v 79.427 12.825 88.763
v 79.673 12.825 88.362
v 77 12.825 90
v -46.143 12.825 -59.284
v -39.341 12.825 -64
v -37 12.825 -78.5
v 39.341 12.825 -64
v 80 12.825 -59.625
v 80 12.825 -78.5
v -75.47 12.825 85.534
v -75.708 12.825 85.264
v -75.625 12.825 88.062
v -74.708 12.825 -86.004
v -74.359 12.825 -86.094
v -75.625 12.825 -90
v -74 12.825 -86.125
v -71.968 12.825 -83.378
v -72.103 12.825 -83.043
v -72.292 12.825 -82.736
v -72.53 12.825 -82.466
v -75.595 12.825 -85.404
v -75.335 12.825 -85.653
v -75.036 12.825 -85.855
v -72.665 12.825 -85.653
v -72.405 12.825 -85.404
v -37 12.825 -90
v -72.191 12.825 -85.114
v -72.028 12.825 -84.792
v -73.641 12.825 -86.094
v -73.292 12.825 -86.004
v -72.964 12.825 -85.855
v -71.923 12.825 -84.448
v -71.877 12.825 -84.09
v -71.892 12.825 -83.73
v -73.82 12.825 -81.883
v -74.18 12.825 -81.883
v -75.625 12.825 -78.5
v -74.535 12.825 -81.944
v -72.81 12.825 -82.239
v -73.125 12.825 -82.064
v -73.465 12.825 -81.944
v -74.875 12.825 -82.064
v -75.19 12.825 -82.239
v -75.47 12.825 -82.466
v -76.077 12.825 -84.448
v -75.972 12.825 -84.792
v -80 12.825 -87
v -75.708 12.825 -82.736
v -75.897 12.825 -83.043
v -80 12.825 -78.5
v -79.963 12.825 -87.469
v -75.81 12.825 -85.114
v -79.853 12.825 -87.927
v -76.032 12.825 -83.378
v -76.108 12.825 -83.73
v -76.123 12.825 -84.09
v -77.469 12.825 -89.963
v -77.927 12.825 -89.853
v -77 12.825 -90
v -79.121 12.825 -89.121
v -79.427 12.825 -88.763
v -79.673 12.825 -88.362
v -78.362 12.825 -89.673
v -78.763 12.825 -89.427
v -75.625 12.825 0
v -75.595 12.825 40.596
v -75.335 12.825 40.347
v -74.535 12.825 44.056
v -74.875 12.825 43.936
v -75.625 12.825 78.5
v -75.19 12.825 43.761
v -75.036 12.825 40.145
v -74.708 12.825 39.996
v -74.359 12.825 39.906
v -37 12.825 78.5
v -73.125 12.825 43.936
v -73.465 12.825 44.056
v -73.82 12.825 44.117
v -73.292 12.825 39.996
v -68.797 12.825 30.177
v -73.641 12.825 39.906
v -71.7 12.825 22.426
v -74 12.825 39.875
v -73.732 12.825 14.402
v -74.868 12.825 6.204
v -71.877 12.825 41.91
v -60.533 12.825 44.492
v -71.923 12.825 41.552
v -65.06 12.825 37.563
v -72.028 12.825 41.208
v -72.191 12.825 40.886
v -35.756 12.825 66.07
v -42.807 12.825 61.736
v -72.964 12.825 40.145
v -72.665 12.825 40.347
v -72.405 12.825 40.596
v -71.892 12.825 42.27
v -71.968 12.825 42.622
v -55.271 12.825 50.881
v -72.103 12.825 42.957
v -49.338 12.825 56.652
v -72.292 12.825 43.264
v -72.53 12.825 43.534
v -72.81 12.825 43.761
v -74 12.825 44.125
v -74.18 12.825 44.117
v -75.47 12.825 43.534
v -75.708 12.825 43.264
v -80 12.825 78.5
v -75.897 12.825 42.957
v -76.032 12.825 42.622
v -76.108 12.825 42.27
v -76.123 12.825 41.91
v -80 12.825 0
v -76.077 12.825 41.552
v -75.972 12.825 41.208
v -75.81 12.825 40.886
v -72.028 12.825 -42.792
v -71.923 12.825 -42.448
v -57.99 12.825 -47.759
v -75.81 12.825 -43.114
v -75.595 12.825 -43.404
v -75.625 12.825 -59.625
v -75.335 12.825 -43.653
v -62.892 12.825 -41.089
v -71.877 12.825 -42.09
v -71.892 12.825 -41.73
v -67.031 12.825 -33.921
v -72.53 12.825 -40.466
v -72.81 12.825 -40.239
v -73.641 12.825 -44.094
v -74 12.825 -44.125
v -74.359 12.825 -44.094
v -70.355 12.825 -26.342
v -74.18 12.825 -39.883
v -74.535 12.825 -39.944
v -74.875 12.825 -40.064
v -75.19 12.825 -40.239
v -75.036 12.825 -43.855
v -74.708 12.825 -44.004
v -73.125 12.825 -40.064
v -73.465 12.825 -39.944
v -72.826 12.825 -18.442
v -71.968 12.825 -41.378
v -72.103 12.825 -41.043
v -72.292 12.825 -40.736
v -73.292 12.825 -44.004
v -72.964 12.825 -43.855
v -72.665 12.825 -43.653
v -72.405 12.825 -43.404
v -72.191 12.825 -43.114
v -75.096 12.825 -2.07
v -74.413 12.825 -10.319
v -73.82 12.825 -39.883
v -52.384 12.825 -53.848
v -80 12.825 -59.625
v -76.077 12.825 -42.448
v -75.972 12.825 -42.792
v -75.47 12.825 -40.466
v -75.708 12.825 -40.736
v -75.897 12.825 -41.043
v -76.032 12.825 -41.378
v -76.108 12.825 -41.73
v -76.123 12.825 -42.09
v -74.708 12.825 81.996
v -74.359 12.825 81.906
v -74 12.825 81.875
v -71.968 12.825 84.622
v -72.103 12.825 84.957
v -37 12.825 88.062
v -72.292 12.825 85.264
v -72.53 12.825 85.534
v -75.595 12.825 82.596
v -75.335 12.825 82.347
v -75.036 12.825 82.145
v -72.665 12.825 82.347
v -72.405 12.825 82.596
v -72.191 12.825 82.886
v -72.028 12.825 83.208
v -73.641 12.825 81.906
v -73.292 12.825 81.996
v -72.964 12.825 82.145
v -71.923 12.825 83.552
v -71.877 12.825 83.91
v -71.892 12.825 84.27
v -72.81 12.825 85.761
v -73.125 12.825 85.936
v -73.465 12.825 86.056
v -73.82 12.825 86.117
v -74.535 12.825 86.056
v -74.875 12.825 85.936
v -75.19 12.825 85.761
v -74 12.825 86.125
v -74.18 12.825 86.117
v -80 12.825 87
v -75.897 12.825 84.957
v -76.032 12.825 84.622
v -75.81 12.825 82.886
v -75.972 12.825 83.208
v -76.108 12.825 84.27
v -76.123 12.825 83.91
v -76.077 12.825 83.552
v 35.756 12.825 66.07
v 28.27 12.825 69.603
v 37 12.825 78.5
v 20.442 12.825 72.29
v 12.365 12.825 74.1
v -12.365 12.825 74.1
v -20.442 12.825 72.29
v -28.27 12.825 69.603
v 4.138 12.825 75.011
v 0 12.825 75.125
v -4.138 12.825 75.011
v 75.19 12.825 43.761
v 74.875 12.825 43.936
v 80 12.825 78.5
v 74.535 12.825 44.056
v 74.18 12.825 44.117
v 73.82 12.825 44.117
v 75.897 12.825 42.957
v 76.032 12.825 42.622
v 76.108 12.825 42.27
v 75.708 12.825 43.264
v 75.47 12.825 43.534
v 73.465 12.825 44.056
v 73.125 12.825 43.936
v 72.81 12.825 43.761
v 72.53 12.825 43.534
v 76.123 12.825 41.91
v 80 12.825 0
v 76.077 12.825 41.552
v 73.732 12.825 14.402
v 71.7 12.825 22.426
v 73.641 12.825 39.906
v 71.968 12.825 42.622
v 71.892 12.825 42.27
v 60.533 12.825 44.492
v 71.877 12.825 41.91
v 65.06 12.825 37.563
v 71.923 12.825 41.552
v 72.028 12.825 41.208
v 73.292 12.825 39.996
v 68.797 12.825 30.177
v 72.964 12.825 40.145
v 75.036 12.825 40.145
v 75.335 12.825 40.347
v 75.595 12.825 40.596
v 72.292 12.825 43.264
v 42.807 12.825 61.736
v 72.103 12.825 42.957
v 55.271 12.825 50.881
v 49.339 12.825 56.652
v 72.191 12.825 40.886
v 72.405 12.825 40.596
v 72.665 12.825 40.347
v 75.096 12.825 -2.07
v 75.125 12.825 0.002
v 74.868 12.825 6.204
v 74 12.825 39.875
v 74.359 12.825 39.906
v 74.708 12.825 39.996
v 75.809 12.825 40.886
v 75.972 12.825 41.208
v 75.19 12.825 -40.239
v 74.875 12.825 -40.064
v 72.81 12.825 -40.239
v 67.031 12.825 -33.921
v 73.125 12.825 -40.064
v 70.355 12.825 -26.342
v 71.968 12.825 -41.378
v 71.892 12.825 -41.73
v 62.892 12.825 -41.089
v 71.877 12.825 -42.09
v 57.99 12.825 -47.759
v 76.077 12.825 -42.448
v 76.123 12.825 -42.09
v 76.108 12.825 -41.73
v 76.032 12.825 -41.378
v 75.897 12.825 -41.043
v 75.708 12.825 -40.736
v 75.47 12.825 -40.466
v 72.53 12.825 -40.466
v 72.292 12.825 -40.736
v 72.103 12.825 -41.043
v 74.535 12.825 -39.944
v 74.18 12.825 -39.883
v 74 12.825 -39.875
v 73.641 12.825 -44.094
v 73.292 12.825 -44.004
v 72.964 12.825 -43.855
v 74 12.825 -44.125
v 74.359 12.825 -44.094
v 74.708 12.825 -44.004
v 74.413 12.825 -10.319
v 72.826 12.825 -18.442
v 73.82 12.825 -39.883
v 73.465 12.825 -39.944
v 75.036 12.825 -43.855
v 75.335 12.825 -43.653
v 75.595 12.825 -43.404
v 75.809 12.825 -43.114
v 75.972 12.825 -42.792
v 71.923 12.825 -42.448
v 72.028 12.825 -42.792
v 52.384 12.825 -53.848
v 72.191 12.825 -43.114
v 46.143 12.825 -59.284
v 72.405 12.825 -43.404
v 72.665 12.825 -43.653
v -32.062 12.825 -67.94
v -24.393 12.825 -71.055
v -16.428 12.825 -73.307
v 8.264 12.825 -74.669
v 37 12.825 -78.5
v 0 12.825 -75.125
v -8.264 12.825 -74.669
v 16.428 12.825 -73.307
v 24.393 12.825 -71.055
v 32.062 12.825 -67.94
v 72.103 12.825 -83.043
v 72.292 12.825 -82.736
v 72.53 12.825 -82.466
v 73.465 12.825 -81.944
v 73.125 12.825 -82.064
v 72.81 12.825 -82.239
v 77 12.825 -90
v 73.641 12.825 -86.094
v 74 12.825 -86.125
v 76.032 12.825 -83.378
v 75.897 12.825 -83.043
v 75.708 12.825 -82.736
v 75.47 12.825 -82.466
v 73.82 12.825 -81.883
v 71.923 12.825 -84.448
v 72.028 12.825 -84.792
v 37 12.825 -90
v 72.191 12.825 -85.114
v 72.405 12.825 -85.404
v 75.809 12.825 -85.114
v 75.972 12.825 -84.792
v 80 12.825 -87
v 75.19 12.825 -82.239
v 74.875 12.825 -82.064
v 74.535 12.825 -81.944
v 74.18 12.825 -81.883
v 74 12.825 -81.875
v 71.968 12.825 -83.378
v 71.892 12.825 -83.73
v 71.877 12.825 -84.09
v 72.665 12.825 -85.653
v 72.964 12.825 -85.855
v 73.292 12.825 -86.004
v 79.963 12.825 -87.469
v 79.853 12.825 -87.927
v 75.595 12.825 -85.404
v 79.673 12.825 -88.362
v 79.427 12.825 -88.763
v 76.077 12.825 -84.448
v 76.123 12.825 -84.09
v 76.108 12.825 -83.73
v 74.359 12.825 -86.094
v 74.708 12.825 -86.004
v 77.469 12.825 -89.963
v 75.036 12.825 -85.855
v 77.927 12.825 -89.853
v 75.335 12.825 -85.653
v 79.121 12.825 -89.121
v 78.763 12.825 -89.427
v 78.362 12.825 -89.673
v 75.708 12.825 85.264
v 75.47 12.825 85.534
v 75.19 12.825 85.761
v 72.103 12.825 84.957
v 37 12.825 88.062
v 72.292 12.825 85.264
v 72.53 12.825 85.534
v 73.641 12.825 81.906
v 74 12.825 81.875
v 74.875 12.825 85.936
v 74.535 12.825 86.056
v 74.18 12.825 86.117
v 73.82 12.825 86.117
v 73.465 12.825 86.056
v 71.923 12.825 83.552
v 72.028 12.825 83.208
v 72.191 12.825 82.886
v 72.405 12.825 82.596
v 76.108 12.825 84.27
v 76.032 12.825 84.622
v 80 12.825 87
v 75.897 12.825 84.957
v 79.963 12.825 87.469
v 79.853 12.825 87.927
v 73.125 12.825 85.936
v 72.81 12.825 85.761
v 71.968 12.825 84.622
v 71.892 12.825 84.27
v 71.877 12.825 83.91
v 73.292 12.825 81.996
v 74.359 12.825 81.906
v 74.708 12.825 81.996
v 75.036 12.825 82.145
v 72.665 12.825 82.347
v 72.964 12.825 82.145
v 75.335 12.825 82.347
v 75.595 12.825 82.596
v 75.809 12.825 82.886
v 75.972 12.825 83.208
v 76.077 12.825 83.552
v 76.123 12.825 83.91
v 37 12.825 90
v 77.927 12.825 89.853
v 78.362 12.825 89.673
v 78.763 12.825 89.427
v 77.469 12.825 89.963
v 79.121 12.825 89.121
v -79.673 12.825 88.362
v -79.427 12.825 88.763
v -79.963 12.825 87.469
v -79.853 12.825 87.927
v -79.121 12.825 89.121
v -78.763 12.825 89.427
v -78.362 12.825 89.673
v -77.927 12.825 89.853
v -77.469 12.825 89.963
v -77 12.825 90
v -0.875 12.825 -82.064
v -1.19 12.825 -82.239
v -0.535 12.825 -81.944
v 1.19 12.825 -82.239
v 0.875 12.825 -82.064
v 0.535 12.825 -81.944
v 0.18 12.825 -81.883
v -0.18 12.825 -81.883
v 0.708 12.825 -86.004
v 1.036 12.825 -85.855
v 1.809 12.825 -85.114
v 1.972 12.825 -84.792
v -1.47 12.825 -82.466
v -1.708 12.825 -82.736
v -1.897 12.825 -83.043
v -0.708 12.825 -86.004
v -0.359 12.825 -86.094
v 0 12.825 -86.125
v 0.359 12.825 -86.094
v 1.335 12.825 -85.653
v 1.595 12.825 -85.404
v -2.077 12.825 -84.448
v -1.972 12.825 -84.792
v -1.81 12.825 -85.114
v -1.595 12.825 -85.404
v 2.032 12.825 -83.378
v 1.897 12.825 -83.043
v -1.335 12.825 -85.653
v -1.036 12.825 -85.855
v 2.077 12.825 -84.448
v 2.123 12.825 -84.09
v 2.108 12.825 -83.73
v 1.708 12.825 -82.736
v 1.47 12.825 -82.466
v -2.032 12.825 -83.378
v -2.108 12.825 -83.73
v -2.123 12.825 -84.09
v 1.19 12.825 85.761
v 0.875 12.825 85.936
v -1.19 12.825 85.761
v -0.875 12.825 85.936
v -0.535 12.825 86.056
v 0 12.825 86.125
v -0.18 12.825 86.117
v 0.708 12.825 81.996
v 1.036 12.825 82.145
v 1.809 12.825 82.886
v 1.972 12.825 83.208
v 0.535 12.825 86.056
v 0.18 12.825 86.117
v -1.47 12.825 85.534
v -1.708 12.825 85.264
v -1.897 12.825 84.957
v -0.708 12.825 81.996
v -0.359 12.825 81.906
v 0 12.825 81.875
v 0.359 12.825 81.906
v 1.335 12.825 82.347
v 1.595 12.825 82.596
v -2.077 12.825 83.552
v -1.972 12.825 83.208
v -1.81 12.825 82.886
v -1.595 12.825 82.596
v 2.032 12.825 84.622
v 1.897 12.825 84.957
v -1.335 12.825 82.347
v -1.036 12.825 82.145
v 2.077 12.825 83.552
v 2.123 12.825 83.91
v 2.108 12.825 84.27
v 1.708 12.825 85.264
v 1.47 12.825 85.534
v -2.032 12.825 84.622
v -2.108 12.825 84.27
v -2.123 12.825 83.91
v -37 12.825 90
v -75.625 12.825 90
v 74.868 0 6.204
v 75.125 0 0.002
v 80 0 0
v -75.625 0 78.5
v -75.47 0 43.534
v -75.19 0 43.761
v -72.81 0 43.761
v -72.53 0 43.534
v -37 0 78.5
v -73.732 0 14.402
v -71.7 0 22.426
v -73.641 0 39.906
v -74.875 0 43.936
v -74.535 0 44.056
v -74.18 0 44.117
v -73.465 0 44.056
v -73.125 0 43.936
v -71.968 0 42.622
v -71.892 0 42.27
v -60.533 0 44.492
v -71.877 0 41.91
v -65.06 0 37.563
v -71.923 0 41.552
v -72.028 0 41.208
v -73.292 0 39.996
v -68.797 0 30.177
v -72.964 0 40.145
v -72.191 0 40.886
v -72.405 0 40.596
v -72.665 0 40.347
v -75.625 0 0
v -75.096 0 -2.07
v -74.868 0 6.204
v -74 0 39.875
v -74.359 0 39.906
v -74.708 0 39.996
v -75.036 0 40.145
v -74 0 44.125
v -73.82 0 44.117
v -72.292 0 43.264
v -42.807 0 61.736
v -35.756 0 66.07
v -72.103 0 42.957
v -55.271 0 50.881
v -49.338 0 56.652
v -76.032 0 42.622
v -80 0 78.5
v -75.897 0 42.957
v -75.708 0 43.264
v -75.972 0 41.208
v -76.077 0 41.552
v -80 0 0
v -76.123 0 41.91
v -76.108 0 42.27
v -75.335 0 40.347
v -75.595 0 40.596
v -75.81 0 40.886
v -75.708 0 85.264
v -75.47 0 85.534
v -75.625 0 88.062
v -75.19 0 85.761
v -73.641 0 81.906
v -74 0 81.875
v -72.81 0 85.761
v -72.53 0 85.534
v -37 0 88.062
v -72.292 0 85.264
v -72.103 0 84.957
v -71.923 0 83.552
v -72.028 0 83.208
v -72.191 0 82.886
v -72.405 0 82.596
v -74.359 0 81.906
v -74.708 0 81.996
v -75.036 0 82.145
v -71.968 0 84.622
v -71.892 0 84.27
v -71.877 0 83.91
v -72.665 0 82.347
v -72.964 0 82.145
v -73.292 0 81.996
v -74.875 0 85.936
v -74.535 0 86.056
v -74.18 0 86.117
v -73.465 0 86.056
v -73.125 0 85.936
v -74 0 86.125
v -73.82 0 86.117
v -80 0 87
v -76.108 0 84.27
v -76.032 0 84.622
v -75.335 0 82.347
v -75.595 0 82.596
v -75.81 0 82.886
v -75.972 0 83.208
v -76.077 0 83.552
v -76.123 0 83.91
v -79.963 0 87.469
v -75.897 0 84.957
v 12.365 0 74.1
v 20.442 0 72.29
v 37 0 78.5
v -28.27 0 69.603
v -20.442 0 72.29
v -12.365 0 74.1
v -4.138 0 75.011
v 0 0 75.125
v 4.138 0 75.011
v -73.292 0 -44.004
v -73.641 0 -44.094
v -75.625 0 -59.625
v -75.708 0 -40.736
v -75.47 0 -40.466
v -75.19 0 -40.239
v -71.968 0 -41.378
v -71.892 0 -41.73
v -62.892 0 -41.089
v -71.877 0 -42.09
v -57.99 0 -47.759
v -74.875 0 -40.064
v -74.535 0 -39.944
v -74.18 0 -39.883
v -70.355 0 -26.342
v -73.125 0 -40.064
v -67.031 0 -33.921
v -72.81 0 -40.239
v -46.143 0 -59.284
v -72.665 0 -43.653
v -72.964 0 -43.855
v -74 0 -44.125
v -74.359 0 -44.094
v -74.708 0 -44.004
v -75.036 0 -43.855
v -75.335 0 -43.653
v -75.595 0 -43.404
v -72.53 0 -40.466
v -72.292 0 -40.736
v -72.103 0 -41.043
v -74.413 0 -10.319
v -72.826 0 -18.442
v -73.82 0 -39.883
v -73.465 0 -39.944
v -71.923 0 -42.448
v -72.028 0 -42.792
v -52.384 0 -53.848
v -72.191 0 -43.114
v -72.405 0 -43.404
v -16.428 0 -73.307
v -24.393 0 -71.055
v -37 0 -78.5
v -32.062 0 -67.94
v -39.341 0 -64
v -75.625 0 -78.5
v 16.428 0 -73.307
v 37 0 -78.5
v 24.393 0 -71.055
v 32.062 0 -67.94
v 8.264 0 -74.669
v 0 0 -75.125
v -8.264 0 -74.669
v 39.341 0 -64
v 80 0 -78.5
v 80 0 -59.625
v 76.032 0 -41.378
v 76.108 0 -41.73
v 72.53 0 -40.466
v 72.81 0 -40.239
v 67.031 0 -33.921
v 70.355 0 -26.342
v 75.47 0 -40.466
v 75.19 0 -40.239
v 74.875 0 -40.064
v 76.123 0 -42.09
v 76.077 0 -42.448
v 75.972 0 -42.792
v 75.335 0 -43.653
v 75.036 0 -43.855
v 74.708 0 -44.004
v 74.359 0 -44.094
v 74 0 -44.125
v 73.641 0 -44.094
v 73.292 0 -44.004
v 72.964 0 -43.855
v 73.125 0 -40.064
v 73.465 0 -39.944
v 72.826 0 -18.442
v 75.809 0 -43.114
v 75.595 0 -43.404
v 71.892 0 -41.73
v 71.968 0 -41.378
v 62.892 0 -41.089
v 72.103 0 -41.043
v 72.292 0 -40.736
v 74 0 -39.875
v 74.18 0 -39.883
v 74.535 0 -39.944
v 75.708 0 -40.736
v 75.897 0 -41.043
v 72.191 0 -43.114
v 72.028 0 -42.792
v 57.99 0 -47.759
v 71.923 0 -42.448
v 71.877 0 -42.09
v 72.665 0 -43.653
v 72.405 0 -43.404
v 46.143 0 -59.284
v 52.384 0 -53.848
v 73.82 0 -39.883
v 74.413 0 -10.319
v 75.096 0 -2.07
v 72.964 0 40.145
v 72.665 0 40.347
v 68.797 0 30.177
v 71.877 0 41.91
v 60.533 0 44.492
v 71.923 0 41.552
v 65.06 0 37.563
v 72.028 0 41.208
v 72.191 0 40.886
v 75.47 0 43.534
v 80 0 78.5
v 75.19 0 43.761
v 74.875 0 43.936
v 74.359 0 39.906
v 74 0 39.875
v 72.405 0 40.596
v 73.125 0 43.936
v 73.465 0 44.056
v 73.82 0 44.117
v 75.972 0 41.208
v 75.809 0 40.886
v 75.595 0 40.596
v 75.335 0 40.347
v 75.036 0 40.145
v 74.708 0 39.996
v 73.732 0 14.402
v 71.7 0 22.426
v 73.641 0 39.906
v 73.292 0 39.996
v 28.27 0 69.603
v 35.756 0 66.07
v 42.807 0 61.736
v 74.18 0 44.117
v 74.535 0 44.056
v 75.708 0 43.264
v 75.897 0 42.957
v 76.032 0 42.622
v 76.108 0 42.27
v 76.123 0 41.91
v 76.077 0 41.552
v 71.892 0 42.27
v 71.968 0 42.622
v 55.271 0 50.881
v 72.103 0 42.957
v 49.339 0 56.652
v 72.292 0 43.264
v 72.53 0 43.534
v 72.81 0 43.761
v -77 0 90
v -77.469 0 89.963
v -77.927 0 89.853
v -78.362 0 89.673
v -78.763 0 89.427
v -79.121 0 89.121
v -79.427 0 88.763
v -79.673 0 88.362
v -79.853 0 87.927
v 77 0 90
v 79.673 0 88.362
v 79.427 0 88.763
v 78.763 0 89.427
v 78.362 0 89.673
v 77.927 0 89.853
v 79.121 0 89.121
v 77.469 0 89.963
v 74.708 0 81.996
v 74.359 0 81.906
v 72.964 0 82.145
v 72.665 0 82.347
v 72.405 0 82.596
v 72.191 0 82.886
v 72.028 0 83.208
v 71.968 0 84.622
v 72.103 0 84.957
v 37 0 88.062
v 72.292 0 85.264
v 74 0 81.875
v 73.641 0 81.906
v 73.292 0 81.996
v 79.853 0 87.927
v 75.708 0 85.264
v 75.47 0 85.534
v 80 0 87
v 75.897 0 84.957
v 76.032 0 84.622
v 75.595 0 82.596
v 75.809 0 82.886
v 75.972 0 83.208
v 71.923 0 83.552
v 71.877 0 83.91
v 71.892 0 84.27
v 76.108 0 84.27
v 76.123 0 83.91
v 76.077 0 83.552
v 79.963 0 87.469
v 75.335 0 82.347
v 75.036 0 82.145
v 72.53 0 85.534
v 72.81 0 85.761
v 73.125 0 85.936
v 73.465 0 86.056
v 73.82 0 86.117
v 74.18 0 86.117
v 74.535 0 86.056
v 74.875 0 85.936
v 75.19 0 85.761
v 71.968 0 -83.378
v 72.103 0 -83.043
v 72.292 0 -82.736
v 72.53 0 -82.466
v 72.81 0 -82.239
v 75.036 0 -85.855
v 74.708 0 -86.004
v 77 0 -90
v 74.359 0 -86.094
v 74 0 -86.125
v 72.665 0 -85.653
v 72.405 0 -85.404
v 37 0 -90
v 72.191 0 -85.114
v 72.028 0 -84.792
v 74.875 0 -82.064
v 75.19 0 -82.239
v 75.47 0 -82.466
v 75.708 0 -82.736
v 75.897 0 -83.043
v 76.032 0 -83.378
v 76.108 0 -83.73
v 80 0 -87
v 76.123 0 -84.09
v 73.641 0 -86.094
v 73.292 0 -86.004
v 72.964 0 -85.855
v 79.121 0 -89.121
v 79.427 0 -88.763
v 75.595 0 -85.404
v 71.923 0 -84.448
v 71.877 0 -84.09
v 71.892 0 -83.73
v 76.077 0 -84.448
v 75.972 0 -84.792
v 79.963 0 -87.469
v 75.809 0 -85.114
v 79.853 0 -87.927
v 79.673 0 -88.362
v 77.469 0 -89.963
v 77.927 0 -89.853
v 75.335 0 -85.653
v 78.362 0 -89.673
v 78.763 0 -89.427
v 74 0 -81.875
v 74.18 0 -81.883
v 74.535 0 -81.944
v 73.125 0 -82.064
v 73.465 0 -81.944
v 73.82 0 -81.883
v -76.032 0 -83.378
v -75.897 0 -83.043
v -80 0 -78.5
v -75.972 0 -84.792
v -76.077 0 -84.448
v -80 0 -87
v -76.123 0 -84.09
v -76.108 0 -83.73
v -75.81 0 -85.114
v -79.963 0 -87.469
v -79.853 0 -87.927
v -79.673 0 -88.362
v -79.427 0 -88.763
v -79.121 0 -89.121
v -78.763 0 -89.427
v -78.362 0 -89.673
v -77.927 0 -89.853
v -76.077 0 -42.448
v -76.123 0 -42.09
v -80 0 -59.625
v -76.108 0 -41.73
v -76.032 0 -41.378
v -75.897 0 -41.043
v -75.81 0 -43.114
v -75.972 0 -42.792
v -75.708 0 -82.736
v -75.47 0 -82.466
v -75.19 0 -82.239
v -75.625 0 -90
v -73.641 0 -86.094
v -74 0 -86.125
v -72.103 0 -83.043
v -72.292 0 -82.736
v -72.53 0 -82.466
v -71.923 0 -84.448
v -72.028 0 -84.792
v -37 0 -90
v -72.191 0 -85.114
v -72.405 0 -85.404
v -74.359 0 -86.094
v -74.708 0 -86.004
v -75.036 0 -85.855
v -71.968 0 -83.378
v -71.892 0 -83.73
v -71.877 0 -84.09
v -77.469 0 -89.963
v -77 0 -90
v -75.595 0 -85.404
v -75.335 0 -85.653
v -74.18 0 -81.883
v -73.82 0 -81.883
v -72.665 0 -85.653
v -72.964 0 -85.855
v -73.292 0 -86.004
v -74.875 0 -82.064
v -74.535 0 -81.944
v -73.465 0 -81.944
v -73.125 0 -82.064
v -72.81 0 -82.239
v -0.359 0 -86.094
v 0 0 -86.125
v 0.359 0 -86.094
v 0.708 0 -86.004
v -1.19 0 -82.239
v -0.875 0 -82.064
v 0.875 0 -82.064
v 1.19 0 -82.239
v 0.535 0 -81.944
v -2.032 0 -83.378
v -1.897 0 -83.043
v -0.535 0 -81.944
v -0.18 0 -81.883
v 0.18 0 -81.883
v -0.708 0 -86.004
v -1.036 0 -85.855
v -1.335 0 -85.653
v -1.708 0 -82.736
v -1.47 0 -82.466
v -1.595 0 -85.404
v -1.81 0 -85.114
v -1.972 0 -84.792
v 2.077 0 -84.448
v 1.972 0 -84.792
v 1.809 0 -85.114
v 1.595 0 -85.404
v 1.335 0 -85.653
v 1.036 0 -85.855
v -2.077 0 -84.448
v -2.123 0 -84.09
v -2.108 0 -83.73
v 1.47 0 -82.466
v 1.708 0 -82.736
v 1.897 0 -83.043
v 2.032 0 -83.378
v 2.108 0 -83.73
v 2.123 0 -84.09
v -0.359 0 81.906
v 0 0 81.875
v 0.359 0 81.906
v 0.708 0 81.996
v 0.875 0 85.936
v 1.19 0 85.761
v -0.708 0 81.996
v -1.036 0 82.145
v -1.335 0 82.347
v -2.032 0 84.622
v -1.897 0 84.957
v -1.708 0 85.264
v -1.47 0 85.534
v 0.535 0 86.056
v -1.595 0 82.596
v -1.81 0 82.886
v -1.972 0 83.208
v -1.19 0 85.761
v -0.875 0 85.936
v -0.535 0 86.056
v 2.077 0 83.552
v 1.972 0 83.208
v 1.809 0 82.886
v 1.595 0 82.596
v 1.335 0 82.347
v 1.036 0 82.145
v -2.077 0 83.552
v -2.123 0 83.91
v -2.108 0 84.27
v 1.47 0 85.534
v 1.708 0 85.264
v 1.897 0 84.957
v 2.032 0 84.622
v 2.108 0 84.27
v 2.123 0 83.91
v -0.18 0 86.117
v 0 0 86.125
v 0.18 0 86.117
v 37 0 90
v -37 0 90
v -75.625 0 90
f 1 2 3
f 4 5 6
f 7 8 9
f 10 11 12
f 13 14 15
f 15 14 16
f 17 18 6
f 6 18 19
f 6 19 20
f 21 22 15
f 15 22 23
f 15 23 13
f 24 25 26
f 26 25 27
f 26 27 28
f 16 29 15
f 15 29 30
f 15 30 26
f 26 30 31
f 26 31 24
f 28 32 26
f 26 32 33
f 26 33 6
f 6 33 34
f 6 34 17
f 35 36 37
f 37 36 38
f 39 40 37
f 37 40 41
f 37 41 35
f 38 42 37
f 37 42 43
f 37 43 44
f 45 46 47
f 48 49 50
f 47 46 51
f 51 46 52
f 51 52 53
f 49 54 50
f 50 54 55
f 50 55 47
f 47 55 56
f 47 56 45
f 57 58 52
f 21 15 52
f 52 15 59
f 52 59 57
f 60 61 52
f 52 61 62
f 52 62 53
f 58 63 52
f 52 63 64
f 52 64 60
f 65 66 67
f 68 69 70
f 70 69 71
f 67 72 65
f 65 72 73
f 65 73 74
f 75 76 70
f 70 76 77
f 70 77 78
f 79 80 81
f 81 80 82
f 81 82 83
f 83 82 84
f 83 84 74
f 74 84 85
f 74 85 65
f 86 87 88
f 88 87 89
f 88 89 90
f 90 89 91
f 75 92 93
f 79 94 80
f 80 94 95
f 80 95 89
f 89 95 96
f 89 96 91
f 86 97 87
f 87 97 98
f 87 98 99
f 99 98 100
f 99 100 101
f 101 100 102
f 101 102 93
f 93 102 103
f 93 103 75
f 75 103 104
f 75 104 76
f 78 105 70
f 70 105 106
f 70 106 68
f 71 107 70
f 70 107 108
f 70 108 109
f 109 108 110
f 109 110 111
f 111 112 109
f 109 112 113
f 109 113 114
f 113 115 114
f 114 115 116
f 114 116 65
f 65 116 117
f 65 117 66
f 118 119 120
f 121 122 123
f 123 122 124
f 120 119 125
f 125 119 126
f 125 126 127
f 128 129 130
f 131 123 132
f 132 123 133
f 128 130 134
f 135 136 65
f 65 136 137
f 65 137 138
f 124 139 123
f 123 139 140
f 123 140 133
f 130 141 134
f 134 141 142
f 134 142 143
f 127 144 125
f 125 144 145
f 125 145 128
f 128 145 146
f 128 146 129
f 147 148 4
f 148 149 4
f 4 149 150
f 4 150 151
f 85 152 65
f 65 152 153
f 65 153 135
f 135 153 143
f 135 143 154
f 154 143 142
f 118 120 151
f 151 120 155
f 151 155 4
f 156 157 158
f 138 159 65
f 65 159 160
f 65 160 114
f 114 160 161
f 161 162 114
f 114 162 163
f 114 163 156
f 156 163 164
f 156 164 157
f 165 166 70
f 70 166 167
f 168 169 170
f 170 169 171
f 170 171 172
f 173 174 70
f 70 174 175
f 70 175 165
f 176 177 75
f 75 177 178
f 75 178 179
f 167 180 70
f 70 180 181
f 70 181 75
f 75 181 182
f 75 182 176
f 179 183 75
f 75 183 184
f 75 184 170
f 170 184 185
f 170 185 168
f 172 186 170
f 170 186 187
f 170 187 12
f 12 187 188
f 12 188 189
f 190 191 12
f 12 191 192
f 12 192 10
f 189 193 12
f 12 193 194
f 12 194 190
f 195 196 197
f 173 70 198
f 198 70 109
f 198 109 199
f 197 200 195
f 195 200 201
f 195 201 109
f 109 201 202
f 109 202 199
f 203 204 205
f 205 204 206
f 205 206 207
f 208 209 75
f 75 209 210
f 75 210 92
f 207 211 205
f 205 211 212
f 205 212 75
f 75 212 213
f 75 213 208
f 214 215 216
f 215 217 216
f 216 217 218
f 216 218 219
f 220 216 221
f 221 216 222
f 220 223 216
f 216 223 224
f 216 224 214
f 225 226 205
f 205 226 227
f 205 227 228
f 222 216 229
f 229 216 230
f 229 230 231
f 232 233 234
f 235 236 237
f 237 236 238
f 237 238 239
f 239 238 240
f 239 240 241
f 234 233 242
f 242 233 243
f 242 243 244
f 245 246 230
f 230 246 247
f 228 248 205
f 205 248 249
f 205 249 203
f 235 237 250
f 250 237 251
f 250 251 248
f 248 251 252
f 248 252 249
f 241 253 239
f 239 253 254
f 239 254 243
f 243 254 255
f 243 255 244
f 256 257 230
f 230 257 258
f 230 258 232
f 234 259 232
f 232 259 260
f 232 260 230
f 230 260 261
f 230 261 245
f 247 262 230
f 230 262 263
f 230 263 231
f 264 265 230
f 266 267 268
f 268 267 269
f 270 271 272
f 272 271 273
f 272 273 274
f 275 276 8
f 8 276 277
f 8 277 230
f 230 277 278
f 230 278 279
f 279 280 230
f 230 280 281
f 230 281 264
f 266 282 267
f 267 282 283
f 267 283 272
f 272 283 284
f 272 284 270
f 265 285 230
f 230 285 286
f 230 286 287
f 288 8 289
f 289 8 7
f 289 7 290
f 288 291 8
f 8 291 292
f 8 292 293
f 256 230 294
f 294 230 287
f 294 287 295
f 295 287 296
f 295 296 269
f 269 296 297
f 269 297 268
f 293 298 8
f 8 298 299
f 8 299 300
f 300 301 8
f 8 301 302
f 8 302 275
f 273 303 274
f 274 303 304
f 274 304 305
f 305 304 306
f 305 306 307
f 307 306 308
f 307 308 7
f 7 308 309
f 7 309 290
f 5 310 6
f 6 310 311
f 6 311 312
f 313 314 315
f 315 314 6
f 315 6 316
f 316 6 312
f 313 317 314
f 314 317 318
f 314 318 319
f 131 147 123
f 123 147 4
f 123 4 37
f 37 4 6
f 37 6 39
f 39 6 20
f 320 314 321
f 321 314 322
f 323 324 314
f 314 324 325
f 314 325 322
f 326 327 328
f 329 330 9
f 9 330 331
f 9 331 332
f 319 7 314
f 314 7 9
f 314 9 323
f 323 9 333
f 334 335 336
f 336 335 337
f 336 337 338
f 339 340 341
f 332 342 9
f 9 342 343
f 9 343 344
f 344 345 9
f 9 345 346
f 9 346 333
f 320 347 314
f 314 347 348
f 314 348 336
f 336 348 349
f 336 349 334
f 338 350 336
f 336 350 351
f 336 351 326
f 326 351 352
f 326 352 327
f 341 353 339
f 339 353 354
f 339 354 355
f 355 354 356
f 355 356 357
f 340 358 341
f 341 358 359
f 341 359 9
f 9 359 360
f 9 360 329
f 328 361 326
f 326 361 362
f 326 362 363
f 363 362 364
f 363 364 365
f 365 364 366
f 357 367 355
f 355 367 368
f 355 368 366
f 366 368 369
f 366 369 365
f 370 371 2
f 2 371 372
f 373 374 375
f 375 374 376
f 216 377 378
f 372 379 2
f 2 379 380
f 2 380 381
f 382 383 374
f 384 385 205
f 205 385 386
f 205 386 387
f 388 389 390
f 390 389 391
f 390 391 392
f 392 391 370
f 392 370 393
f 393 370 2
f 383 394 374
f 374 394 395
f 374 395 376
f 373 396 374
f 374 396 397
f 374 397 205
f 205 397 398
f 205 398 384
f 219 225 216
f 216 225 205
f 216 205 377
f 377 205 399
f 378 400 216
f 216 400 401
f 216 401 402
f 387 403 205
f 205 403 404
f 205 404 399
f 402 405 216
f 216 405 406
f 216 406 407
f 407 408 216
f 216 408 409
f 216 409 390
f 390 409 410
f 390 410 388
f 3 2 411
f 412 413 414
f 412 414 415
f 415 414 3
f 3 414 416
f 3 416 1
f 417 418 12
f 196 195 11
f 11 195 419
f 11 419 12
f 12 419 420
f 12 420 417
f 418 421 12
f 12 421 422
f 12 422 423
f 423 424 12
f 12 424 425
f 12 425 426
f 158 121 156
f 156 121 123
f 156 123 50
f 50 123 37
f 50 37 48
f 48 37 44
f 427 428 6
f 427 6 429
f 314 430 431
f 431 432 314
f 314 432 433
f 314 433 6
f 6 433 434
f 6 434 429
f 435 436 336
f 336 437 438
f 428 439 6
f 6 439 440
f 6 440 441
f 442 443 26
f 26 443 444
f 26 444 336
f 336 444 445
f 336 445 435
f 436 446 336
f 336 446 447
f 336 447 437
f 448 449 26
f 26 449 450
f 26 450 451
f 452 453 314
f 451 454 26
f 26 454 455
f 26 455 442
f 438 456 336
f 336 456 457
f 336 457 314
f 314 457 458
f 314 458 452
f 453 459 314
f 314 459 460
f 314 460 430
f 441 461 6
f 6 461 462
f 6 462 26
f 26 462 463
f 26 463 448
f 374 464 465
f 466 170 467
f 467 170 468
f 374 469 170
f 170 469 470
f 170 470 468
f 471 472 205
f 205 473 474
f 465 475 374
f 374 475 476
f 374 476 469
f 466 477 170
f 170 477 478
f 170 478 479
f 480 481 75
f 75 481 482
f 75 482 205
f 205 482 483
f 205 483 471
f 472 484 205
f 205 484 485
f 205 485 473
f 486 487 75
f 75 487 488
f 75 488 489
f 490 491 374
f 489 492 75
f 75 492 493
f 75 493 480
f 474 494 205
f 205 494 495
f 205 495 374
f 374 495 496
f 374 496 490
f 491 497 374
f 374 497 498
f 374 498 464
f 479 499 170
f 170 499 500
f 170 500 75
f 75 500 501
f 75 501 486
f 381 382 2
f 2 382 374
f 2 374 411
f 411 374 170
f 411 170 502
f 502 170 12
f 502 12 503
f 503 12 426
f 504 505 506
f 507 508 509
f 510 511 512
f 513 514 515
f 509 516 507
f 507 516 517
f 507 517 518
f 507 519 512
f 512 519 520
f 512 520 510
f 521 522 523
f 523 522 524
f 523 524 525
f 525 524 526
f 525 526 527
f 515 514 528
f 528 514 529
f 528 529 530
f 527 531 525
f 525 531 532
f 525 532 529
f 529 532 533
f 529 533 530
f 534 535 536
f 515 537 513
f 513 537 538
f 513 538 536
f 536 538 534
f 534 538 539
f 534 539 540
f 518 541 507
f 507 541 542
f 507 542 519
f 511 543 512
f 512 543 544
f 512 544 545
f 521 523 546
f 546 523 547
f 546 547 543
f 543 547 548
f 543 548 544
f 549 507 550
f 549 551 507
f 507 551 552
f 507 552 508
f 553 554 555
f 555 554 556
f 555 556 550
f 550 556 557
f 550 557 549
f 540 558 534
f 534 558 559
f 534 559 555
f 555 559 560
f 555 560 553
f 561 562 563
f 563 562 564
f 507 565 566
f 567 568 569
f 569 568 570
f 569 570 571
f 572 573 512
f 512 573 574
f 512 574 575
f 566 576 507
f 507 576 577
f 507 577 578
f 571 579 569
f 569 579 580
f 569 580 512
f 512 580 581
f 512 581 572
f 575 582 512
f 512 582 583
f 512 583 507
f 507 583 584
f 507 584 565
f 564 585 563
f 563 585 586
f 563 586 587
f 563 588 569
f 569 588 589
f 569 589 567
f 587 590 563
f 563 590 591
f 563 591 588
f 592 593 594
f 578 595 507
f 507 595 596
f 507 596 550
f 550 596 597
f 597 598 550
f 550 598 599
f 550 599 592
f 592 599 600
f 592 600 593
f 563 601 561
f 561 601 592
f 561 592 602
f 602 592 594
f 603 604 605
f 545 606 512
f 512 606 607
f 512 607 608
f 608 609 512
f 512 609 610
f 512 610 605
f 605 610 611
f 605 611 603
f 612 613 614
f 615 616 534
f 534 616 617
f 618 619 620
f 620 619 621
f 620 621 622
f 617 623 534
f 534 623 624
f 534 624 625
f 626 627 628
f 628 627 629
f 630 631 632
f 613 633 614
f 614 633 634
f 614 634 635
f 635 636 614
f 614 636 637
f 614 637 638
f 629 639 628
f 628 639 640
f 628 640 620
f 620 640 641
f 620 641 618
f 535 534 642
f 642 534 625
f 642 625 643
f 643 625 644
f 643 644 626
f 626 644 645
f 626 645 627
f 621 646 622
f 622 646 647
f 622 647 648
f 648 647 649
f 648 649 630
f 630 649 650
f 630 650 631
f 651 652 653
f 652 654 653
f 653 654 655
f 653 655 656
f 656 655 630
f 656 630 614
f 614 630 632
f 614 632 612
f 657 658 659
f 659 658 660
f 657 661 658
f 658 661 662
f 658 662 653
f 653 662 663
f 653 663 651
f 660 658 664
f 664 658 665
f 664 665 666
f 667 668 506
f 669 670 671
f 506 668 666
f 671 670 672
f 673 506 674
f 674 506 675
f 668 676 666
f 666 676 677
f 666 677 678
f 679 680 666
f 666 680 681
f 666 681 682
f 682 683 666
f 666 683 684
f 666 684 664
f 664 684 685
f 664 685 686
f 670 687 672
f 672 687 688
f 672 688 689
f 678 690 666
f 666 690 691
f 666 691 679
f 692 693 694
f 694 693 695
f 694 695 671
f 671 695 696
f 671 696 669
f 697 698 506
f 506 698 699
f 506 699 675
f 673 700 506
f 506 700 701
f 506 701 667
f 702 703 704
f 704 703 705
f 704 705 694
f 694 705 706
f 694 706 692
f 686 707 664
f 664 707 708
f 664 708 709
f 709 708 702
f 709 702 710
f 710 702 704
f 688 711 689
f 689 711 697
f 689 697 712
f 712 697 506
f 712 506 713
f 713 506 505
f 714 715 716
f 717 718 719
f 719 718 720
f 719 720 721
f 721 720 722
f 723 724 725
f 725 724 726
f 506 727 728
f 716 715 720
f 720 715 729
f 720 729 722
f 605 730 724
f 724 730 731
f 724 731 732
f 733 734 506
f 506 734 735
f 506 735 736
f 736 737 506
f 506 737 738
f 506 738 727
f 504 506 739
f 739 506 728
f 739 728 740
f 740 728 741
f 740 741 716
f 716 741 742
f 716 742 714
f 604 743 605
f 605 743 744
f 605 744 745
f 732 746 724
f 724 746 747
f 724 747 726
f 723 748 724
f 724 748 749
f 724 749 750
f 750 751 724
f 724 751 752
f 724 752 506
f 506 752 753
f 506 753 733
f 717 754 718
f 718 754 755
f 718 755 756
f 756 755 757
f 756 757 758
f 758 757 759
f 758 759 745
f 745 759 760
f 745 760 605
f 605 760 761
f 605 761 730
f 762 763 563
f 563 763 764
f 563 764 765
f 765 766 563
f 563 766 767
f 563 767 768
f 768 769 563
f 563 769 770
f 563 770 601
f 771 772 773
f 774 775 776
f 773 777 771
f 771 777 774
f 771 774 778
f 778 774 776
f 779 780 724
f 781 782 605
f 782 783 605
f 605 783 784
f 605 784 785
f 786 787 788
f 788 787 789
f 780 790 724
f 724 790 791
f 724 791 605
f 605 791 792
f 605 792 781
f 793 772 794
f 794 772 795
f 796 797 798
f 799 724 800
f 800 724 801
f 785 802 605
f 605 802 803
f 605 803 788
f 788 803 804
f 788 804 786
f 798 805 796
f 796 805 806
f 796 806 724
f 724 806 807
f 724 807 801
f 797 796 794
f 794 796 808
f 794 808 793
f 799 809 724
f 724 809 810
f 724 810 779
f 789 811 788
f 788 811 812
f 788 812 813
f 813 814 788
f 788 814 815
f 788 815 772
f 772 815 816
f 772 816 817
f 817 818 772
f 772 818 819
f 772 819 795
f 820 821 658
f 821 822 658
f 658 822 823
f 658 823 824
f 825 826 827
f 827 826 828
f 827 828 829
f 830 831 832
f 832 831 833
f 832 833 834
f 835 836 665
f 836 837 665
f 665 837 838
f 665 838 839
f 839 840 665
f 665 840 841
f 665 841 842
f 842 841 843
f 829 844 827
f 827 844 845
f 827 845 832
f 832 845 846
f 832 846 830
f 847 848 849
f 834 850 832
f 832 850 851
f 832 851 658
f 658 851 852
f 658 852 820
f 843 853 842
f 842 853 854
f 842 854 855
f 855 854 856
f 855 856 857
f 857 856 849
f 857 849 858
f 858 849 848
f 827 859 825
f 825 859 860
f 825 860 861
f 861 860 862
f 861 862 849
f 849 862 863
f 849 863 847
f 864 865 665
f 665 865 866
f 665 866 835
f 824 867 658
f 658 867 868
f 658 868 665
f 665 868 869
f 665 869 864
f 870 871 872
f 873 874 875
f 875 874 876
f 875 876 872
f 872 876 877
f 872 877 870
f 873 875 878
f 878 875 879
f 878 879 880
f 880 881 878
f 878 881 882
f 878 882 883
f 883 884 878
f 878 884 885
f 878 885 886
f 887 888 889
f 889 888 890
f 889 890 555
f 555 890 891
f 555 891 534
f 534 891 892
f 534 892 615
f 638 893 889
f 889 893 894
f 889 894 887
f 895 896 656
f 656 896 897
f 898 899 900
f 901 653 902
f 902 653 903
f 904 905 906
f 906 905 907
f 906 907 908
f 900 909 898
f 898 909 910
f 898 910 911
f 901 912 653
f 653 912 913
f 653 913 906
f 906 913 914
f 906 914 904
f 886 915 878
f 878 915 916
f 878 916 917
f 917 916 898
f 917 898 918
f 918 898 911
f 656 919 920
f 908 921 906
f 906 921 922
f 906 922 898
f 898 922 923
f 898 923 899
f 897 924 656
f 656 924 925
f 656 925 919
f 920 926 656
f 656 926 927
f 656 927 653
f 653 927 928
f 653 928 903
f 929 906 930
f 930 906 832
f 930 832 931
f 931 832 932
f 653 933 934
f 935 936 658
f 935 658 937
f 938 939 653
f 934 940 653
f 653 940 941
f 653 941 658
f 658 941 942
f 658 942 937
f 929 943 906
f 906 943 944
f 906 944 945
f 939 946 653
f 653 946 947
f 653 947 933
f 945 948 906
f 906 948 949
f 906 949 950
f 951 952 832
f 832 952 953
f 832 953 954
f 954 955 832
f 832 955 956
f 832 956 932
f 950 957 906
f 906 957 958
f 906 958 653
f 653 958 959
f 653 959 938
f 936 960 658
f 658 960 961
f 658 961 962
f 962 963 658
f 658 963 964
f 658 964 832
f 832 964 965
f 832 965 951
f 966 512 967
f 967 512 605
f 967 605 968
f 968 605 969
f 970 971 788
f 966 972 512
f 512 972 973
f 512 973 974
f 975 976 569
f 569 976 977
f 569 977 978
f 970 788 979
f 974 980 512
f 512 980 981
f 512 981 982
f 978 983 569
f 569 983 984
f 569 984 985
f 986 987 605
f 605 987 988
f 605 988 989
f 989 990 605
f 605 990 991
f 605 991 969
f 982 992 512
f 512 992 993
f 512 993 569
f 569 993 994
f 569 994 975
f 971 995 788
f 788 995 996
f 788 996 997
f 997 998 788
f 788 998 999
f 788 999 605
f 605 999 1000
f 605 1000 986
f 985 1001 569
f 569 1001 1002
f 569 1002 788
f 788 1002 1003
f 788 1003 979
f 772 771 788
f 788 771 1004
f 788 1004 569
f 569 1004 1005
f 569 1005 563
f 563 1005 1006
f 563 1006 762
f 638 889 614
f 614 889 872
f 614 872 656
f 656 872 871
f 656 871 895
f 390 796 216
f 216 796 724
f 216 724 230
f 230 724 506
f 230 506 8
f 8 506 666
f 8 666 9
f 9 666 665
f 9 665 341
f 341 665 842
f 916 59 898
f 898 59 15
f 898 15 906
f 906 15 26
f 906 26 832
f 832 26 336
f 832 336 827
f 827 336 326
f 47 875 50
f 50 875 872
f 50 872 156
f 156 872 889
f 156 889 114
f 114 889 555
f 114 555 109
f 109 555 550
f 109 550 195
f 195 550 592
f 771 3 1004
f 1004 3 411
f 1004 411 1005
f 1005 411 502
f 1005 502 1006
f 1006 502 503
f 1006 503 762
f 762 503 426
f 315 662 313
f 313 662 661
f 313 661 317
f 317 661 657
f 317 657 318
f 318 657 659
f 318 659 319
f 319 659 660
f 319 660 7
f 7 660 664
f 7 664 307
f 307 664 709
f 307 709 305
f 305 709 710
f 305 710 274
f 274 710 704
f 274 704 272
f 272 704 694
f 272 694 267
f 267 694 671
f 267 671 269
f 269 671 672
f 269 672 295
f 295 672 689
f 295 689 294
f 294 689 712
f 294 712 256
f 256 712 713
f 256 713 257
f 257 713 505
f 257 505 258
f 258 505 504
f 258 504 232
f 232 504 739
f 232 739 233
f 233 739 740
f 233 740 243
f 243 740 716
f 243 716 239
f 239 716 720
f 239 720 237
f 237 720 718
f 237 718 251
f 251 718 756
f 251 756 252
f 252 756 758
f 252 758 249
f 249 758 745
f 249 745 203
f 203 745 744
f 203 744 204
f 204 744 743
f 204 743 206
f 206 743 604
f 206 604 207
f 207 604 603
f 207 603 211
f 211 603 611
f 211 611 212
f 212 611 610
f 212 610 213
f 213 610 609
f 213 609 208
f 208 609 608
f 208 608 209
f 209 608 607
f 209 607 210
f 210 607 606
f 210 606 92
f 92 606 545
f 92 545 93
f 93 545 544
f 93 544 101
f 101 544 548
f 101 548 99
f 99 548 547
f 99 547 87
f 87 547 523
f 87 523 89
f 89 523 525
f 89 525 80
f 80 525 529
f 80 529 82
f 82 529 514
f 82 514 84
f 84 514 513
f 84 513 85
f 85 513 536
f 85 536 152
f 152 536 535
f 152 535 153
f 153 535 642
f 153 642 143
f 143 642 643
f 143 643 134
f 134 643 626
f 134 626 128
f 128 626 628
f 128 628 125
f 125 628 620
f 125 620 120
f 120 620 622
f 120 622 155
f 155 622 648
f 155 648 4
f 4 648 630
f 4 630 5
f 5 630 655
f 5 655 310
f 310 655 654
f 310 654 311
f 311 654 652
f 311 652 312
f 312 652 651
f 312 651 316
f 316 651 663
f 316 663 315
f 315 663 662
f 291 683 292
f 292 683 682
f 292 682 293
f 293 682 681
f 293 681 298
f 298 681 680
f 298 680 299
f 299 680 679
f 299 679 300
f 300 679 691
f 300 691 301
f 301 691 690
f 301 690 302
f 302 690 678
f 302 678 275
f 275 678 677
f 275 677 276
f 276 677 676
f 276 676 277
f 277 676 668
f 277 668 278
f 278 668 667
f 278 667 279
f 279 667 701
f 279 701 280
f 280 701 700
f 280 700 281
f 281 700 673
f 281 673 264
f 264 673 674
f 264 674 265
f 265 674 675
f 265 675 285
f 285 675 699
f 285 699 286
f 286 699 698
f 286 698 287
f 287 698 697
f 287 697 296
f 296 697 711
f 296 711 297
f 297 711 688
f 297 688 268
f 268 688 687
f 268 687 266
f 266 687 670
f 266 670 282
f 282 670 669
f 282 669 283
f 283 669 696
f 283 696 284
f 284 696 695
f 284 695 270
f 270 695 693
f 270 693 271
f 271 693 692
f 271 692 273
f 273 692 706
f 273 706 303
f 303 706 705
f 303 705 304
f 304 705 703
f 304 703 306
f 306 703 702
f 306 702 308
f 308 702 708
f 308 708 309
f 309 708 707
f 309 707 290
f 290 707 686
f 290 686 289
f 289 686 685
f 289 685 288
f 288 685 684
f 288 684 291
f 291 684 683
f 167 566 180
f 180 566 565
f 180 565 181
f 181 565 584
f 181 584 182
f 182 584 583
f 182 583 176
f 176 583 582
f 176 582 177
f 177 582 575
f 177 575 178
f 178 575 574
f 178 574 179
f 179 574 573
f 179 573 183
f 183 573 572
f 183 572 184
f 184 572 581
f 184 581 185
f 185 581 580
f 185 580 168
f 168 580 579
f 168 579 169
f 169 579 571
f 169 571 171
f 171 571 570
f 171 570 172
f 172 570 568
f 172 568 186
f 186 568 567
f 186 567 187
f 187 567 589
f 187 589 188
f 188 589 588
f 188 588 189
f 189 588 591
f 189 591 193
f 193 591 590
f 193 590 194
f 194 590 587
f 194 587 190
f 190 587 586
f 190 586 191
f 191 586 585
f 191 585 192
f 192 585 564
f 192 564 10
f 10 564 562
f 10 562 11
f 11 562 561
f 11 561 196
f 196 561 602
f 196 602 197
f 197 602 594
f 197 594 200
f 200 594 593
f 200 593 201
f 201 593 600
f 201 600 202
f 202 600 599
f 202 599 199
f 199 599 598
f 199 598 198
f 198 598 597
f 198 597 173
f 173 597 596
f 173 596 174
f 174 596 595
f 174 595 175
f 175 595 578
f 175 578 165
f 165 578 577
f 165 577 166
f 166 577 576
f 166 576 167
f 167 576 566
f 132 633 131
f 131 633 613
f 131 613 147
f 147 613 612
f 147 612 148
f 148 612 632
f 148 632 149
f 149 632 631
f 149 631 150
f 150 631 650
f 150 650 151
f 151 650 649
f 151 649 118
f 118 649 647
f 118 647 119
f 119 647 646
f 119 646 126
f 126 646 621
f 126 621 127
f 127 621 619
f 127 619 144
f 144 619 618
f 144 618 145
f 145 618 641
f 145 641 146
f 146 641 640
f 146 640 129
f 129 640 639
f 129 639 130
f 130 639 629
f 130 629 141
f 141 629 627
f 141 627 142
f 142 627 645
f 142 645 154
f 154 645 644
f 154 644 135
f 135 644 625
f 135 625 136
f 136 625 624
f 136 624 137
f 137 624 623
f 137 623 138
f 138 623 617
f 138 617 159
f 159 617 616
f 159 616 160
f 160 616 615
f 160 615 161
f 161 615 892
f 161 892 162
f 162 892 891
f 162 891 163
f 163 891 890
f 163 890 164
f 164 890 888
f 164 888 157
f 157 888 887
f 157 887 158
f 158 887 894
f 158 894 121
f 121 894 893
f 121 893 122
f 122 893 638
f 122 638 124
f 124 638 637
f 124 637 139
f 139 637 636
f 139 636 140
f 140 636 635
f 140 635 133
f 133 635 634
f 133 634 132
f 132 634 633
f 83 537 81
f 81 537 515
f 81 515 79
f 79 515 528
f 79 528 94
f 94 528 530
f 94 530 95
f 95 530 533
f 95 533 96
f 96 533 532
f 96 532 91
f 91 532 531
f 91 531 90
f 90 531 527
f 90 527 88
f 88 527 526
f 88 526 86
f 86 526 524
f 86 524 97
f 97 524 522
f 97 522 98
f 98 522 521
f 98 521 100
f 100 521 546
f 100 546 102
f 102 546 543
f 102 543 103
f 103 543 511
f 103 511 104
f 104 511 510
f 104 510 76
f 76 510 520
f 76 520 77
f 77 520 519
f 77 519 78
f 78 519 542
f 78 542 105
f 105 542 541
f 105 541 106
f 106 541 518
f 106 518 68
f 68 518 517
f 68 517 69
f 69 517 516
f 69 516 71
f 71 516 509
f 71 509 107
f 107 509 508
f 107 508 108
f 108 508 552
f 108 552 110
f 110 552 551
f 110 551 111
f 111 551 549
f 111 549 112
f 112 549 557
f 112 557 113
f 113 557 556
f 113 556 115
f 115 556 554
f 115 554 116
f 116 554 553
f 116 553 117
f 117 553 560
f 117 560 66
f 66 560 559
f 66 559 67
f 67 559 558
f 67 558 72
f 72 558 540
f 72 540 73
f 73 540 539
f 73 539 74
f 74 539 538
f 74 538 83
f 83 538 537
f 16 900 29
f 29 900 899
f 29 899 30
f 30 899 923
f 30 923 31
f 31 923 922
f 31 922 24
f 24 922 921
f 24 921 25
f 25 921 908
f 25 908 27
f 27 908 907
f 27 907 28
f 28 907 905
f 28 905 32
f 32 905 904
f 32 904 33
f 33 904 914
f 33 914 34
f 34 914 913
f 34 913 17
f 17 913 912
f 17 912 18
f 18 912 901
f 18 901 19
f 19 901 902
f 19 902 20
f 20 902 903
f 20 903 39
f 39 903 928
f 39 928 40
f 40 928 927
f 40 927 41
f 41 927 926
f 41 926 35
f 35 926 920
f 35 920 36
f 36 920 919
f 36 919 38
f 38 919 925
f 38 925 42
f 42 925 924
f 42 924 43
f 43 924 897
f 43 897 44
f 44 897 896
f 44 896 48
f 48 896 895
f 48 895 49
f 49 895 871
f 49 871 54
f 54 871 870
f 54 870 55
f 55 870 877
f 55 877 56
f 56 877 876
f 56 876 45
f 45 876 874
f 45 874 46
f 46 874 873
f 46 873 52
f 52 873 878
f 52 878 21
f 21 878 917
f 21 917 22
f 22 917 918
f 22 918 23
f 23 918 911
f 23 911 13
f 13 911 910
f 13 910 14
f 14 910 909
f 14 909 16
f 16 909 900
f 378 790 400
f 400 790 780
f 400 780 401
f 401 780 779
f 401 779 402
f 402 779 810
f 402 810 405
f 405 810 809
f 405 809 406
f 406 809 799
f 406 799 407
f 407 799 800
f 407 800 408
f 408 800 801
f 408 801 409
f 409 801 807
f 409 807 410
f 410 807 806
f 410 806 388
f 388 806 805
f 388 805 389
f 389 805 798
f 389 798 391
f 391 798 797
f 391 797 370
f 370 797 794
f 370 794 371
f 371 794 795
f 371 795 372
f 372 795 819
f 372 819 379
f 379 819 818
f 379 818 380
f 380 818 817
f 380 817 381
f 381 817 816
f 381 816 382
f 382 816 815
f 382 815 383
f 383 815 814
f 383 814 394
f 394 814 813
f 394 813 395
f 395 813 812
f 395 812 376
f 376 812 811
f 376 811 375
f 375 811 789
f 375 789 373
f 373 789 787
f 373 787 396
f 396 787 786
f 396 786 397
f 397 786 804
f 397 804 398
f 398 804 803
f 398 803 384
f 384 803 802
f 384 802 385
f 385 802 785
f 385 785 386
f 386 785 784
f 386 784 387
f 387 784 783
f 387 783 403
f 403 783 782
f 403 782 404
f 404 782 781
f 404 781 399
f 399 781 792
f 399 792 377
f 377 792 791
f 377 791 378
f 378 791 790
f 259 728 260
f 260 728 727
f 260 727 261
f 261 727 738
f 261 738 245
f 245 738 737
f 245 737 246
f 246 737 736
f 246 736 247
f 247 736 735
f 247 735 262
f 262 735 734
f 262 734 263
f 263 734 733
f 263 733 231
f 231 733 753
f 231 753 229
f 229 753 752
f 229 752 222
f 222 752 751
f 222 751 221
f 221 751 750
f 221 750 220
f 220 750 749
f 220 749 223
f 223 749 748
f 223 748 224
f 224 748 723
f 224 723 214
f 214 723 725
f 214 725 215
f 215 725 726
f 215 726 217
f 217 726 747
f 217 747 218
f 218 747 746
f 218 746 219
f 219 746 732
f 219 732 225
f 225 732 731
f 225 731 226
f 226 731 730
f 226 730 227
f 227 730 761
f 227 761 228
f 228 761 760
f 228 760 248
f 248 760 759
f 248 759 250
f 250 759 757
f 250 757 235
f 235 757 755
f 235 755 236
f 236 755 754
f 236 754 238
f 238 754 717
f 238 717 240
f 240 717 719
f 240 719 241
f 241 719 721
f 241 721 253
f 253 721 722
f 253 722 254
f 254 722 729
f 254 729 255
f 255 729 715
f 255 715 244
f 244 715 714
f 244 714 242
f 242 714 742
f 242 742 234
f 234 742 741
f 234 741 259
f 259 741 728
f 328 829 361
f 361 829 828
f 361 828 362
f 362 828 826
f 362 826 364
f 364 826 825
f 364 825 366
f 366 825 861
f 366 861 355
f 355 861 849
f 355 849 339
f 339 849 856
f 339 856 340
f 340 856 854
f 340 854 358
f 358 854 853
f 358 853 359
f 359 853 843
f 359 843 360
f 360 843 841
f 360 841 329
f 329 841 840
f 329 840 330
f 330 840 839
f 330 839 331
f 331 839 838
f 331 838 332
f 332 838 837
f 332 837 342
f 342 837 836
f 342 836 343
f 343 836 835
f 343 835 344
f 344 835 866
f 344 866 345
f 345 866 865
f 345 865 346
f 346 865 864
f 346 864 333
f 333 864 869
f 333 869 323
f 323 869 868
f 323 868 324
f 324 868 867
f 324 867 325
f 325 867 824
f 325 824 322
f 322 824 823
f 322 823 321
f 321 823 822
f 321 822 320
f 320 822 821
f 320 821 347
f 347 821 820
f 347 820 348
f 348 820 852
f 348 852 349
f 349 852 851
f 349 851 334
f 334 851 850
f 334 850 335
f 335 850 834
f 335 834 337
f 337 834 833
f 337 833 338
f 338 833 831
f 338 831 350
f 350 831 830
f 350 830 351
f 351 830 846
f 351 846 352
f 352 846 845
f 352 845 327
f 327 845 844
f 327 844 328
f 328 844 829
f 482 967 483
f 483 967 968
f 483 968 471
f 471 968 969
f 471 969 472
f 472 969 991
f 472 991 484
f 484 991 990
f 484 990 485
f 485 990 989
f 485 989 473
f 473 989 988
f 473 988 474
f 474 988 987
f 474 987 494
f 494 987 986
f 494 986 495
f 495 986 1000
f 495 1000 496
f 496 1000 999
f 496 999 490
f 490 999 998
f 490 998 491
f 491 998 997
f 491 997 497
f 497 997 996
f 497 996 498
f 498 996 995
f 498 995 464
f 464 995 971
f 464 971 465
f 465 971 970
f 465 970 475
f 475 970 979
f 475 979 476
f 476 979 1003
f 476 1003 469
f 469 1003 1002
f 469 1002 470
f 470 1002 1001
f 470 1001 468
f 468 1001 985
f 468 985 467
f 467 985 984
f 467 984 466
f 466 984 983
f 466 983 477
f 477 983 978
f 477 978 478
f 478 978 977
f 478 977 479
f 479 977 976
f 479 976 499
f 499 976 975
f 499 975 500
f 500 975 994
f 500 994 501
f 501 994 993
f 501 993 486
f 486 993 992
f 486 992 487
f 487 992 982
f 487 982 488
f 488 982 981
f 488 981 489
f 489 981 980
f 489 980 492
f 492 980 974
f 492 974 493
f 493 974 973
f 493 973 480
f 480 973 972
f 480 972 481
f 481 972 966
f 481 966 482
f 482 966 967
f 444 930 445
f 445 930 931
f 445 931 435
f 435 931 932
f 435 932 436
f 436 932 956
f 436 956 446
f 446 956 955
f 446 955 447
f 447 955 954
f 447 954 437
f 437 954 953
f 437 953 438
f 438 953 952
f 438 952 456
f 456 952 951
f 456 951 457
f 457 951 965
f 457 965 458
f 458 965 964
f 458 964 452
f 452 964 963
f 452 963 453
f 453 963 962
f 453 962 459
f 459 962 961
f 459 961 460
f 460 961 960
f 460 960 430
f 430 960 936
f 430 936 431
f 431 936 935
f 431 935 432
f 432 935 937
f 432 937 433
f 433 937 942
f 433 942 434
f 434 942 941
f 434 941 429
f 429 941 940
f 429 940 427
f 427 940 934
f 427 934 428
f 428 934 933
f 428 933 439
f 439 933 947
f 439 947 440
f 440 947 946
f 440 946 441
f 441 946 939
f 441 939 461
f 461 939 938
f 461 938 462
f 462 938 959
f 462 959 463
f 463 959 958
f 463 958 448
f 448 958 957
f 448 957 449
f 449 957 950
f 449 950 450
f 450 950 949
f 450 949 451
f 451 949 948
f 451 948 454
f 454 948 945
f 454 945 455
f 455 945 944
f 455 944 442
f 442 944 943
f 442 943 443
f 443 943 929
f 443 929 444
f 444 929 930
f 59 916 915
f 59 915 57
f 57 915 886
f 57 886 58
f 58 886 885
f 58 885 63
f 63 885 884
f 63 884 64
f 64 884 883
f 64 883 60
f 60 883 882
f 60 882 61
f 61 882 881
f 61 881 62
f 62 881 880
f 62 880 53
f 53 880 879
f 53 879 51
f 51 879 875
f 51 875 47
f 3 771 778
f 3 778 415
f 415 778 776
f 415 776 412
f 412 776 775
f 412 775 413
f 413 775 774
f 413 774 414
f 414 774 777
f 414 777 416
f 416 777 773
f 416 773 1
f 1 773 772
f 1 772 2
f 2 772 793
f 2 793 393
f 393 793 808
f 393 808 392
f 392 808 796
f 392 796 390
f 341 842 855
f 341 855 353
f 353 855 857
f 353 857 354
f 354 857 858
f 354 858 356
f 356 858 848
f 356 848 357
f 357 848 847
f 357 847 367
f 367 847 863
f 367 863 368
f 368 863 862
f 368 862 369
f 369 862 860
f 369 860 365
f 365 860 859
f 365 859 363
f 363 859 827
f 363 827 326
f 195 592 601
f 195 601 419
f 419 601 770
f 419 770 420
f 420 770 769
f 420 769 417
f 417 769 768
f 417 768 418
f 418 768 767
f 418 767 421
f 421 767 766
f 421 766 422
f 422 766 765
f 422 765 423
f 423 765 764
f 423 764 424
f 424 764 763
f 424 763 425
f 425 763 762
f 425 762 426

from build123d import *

# Parameters (mm, degrees)
SKETCH1_W           = 160
SKETCH1_H           = 180
SKETCH1_R           = 75.125
SKETCH1_R_2         = 2.125
BOSS_EXTRUDE1_DEPTH = 12.825
FILLET1_R           = 3


with BuildPart() as part:
    # Sketch1 → Boss-Extrude1 (new body)
    with BuildSketch(Plane(origin=(0, 0, 0), x_dir=(1, 0, 0), z_dir=(0, 1, 0))):
        Rectangle(SKETCH1_W, SKETCH1_H)
        with Locations(Location((0, 0, 0), (0, 0, 270))):
            Circle(SKETCH1_R, mode=Mode.SUBTRACT)
        with Locations(Location((-74, -84, 0), (0, 0, 270))):
            Circle(SKETCH1_R_2, mode=Mode.SUBTRACT)
        with Locations(Location((-74, -42, 0), (0, 0, 270))):
            Circle(SKETCH1_R_2, mode=Mode.SUBTRACT)
        with Locations(Location((-74, 84, 0), (0, 0, 90))):
            Circle(SKETCH1_R_2, mode=Mode.SUBTRACT)
        with Locations(Location((74, -84, 0), (0, 0, 90))):
            Circle(SKETCH1_R_2, mode=Mode.SUBTRACT)
        with Locations(Location((74, -42, 0), (0, 0, 90))):
            Circle(SKETCH1_R_2, mode=Mode.SUBTRACT)
        with Locations(Location((74, 84, 0), (0, 0, 270))):
            Circle(SKETCH1_R_2, mode=Mode.SUBTRACT)
        with Locations(Location((0, -84, 0), (0, 0, 270))):
            Circle(SKETCH1_R_2, mode=Mode.SUBTRACT)
        with Locations(Location((0, 84, 0), (0, 0, 90))):
            Circle(SKETCH1_R_2, mode=Mode.SUBTRACT)
        with Locations(Location((74, 42, 0), (0, 0, 270))):
            Circle(SKETCH1_R_2, mode=Mode.SUBTRACT)
        with Locations(Location((-74, 42, 0), (0, 0, 90))):
            Circle(SKETCH1_R_2, mode=Mode.SUBTRACT)
    extrude(amount=BOSS_EXTRUDE1_DEPTH)

    # Fillet1
    fillet1_edges = [part.edges().sort_by_distance(p)[0] for p in [
        (80, 6.4125, 90),
        (-80, 6.4125, 90),
        (-80, 6.4125, -90),
        (80, 6.4125, -90),
    ]]
    fillet(fillet1_edges, radius=FILLET1_R)


solid = part.part
